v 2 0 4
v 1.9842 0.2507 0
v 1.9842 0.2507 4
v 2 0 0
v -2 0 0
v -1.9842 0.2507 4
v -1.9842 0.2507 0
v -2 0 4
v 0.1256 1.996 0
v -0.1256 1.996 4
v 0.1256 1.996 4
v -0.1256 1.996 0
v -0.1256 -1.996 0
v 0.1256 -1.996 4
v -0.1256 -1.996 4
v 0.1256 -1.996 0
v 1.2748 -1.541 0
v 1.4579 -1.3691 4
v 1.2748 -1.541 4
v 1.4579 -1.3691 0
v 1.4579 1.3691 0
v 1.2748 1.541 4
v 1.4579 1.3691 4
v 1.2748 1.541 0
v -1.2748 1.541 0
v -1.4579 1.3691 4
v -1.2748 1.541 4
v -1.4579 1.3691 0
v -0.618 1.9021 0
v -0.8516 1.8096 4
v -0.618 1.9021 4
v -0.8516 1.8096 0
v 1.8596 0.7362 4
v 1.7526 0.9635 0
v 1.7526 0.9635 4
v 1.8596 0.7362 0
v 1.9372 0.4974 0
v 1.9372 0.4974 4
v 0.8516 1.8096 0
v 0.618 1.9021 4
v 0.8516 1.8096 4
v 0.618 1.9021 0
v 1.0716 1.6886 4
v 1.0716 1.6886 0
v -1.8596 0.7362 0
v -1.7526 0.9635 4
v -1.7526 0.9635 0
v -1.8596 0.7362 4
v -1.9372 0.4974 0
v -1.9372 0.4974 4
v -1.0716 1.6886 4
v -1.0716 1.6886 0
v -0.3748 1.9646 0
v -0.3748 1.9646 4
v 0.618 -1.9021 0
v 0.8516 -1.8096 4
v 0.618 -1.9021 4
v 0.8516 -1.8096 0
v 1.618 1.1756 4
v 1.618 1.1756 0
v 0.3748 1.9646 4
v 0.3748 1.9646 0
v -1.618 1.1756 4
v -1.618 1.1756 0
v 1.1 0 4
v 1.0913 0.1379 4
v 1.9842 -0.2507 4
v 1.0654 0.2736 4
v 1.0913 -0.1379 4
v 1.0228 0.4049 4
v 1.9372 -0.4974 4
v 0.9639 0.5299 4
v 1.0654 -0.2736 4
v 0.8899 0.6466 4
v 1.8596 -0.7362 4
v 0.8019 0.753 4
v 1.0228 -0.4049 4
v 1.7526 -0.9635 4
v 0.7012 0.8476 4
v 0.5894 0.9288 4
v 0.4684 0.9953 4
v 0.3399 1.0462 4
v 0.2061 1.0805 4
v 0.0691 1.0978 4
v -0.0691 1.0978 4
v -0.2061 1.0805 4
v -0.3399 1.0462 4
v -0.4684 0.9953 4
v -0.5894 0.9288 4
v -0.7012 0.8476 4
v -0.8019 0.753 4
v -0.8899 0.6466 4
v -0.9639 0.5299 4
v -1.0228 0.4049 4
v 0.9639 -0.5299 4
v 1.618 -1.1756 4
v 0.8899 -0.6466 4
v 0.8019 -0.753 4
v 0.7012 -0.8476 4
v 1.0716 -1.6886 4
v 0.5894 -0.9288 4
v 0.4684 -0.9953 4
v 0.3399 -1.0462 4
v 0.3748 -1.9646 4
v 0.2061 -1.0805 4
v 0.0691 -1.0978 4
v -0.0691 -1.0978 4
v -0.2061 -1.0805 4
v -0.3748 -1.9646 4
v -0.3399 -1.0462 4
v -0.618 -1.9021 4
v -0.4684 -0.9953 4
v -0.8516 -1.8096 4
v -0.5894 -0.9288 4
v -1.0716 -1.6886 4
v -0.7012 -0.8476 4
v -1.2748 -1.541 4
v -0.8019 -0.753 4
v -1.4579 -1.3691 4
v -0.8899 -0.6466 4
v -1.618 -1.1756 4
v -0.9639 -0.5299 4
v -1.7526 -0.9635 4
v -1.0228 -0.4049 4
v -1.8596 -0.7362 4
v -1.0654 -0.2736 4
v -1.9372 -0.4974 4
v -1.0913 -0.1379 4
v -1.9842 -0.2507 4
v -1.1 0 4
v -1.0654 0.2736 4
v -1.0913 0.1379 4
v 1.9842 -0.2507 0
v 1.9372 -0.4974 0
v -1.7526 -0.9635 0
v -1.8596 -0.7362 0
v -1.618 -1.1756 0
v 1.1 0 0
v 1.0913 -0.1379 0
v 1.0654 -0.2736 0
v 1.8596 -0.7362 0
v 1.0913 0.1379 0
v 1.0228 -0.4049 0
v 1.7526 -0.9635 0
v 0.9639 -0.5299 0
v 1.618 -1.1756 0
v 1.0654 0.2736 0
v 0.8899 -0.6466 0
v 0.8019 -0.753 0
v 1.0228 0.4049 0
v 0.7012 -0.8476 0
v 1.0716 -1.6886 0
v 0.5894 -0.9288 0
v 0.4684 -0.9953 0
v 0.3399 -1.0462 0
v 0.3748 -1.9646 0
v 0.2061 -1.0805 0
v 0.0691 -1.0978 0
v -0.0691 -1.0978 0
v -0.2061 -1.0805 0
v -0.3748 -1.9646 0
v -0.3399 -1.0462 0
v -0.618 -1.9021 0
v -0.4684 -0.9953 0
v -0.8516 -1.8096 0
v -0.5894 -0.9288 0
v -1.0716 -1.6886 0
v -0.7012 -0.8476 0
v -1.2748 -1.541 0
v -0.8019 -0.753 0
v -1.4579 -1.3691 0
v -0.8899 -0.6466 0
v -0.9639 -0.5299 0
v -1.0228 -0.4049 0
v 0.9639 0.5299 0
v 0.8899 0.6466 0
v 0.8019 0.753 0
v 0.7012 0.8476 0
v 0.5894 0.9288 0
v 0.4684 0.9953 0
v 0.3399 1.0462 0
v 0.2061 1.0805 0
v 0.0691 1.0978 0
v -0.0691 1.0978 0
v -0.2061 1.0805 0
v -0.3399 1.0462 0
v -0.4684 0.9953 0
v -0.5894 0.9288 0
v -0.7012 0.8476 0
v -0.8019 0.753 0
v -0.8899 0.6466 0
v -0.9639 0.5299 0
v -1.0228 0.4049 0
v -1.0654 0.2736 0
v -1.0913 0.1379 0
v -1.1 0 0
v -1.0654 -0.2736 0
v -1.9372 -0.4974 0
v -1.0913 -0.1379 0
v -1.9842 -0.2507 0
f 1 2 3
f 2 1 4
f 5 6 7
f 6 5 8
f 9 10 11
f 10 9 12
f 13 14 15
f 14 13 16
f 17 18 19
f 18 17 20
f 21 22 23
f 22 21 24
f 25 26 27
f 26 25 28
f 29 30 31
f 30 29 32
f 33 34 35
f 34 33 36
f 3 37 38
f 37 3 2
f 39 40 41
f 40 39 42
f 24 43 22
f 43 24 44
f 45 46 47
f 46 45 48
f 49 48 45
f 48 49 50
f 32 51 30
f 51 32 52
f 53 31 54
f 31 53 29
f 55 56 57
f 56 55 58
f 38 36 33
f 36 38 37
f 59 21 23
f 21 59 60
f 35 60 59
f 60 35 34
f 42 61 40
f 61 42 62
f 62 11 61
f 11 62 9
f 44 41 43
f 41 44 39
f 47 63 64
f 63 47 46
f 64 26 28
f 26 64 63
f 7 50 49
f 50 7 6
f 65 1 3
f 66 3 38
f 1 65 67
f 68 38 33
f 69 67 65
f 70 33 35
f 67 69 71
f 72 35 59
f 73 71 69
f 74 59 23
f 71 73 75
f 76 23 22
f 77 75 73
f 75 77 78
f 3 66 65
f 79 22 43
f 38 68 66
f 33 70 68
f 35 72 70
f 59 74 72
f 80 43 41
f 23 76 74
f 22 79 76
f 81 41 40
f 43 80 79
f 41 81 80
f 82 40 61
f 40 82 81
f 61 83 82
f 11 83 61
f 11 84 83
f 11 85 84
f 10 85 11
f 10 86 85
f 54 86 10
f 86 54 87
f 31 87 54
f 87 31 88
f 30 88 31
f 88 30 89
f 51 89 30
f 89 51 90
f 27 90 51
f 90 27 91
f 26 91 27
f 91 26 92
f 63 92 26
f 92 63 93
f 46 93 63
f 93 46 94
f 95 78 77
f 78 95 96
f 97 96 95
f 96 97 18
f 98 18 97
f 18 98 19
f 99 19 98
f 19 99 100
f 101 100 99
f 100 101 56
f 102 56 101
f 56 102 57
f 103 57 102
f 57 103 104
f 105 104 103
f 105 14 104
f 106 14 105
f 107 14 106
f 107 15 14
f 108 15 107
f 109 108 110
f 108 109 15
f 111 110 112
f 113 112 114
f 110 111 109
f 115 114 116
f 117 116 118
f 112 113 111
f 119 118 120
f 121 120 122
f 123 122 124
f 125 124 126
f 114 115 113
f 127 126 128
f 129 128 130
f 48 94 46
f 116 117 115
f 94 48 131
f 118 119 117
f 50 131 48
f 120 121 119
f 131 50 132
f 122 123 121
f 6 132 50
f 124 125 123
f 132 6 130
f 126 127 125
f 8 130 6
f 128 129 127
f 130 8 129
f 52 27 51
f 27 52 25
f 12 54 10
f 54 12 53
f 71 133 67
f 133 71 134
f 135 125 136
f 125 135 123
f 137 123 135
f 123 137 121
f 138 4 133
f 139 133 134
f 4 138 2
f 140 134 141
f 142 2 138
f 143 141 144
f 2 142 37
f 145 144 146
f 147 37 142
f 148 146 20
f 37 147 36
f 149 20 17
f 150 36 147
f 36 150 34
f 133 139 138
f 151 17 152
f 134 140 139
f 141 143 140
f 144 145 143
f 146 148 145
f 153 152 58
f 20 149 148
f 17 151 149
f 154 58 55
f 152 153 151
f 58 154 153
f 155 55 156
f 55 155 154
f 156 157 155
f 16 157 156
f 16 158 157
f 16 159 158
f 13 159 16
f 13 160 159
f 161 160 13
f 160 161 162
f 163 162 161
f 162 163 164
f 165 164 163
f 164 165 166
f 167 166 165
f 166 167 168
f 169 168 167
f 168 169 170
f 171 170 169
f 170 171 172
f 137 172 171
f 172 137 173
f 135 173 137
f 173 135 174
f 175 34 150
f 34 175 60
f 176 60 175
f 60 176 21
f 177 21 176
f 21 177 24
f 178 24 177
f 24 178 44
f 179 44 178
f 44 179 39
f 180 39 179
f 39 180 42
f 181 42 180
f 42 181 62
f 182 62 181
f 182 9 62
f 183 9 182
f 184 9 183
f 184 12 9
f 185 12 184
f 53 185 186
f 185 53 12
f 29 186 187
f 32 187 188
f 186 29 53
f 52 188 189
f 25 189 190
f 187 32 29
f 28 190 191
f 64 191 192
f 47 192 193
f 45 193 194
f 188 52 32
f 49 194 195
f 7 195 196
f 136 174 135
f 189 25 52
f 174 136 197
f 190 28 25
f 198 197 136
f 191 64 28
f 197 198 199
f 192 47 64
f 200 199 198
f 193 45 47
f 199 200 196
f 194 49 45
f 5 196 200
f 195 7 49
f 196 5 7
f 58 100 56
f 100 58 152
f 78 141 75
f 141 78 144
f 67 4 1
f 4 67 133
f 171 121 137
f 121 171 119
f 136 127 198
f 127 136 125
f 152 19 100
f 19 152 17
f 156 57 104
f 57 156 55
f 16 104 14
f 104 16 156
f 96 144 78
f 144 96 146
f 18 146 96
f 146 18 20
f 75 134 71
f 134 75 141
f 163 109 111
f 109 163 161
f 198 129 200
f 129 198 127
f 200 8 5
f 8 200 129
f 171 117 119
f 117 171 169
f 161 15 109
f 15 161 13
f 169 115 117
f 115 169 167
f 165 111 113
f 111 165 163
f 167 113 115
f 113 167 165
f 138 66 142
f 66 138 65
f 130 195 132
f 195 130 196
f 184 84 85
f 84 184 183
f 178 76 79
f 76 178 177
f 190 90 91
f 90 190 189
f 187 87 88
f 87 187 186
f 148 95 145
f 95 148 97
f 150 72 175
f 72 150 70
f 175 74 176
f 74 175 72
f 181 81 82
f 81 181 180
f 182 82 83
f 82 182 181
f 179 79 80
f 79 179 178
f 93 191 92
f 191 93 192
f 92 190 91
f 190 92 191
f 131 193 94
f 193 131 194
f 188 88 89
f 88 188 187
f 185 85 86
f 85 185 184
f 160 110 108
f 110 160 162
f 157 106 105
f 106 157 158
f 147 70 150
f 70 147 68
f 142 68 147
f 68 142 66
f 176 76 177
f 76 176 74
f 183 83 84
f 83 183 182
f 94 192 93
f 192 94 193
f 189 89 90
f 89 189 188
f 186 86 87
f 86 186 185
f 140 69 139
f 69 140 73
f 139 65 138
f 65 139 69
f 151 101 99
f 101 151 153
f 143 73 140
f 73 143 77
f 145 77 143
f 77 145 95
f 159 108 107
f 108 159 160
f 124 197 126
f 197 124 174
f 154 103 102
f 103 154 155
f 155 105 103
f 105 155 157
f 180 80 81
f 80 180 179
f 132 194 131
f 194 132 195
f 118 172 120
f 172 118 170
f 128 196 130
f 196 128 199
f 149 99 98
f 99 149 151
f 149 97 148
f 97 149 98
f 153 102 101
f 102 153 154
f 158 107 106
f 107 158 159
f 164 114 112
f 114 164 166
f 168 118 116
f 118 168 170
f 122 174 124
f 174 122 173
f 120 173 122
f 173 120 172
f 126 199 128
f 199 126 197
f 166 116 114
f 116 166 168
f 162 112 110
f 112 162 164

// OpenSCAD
$fn = 50;

difference() {
    cylinder(4,2,2);
    cylinder(4,1.1,1.1);    
}
